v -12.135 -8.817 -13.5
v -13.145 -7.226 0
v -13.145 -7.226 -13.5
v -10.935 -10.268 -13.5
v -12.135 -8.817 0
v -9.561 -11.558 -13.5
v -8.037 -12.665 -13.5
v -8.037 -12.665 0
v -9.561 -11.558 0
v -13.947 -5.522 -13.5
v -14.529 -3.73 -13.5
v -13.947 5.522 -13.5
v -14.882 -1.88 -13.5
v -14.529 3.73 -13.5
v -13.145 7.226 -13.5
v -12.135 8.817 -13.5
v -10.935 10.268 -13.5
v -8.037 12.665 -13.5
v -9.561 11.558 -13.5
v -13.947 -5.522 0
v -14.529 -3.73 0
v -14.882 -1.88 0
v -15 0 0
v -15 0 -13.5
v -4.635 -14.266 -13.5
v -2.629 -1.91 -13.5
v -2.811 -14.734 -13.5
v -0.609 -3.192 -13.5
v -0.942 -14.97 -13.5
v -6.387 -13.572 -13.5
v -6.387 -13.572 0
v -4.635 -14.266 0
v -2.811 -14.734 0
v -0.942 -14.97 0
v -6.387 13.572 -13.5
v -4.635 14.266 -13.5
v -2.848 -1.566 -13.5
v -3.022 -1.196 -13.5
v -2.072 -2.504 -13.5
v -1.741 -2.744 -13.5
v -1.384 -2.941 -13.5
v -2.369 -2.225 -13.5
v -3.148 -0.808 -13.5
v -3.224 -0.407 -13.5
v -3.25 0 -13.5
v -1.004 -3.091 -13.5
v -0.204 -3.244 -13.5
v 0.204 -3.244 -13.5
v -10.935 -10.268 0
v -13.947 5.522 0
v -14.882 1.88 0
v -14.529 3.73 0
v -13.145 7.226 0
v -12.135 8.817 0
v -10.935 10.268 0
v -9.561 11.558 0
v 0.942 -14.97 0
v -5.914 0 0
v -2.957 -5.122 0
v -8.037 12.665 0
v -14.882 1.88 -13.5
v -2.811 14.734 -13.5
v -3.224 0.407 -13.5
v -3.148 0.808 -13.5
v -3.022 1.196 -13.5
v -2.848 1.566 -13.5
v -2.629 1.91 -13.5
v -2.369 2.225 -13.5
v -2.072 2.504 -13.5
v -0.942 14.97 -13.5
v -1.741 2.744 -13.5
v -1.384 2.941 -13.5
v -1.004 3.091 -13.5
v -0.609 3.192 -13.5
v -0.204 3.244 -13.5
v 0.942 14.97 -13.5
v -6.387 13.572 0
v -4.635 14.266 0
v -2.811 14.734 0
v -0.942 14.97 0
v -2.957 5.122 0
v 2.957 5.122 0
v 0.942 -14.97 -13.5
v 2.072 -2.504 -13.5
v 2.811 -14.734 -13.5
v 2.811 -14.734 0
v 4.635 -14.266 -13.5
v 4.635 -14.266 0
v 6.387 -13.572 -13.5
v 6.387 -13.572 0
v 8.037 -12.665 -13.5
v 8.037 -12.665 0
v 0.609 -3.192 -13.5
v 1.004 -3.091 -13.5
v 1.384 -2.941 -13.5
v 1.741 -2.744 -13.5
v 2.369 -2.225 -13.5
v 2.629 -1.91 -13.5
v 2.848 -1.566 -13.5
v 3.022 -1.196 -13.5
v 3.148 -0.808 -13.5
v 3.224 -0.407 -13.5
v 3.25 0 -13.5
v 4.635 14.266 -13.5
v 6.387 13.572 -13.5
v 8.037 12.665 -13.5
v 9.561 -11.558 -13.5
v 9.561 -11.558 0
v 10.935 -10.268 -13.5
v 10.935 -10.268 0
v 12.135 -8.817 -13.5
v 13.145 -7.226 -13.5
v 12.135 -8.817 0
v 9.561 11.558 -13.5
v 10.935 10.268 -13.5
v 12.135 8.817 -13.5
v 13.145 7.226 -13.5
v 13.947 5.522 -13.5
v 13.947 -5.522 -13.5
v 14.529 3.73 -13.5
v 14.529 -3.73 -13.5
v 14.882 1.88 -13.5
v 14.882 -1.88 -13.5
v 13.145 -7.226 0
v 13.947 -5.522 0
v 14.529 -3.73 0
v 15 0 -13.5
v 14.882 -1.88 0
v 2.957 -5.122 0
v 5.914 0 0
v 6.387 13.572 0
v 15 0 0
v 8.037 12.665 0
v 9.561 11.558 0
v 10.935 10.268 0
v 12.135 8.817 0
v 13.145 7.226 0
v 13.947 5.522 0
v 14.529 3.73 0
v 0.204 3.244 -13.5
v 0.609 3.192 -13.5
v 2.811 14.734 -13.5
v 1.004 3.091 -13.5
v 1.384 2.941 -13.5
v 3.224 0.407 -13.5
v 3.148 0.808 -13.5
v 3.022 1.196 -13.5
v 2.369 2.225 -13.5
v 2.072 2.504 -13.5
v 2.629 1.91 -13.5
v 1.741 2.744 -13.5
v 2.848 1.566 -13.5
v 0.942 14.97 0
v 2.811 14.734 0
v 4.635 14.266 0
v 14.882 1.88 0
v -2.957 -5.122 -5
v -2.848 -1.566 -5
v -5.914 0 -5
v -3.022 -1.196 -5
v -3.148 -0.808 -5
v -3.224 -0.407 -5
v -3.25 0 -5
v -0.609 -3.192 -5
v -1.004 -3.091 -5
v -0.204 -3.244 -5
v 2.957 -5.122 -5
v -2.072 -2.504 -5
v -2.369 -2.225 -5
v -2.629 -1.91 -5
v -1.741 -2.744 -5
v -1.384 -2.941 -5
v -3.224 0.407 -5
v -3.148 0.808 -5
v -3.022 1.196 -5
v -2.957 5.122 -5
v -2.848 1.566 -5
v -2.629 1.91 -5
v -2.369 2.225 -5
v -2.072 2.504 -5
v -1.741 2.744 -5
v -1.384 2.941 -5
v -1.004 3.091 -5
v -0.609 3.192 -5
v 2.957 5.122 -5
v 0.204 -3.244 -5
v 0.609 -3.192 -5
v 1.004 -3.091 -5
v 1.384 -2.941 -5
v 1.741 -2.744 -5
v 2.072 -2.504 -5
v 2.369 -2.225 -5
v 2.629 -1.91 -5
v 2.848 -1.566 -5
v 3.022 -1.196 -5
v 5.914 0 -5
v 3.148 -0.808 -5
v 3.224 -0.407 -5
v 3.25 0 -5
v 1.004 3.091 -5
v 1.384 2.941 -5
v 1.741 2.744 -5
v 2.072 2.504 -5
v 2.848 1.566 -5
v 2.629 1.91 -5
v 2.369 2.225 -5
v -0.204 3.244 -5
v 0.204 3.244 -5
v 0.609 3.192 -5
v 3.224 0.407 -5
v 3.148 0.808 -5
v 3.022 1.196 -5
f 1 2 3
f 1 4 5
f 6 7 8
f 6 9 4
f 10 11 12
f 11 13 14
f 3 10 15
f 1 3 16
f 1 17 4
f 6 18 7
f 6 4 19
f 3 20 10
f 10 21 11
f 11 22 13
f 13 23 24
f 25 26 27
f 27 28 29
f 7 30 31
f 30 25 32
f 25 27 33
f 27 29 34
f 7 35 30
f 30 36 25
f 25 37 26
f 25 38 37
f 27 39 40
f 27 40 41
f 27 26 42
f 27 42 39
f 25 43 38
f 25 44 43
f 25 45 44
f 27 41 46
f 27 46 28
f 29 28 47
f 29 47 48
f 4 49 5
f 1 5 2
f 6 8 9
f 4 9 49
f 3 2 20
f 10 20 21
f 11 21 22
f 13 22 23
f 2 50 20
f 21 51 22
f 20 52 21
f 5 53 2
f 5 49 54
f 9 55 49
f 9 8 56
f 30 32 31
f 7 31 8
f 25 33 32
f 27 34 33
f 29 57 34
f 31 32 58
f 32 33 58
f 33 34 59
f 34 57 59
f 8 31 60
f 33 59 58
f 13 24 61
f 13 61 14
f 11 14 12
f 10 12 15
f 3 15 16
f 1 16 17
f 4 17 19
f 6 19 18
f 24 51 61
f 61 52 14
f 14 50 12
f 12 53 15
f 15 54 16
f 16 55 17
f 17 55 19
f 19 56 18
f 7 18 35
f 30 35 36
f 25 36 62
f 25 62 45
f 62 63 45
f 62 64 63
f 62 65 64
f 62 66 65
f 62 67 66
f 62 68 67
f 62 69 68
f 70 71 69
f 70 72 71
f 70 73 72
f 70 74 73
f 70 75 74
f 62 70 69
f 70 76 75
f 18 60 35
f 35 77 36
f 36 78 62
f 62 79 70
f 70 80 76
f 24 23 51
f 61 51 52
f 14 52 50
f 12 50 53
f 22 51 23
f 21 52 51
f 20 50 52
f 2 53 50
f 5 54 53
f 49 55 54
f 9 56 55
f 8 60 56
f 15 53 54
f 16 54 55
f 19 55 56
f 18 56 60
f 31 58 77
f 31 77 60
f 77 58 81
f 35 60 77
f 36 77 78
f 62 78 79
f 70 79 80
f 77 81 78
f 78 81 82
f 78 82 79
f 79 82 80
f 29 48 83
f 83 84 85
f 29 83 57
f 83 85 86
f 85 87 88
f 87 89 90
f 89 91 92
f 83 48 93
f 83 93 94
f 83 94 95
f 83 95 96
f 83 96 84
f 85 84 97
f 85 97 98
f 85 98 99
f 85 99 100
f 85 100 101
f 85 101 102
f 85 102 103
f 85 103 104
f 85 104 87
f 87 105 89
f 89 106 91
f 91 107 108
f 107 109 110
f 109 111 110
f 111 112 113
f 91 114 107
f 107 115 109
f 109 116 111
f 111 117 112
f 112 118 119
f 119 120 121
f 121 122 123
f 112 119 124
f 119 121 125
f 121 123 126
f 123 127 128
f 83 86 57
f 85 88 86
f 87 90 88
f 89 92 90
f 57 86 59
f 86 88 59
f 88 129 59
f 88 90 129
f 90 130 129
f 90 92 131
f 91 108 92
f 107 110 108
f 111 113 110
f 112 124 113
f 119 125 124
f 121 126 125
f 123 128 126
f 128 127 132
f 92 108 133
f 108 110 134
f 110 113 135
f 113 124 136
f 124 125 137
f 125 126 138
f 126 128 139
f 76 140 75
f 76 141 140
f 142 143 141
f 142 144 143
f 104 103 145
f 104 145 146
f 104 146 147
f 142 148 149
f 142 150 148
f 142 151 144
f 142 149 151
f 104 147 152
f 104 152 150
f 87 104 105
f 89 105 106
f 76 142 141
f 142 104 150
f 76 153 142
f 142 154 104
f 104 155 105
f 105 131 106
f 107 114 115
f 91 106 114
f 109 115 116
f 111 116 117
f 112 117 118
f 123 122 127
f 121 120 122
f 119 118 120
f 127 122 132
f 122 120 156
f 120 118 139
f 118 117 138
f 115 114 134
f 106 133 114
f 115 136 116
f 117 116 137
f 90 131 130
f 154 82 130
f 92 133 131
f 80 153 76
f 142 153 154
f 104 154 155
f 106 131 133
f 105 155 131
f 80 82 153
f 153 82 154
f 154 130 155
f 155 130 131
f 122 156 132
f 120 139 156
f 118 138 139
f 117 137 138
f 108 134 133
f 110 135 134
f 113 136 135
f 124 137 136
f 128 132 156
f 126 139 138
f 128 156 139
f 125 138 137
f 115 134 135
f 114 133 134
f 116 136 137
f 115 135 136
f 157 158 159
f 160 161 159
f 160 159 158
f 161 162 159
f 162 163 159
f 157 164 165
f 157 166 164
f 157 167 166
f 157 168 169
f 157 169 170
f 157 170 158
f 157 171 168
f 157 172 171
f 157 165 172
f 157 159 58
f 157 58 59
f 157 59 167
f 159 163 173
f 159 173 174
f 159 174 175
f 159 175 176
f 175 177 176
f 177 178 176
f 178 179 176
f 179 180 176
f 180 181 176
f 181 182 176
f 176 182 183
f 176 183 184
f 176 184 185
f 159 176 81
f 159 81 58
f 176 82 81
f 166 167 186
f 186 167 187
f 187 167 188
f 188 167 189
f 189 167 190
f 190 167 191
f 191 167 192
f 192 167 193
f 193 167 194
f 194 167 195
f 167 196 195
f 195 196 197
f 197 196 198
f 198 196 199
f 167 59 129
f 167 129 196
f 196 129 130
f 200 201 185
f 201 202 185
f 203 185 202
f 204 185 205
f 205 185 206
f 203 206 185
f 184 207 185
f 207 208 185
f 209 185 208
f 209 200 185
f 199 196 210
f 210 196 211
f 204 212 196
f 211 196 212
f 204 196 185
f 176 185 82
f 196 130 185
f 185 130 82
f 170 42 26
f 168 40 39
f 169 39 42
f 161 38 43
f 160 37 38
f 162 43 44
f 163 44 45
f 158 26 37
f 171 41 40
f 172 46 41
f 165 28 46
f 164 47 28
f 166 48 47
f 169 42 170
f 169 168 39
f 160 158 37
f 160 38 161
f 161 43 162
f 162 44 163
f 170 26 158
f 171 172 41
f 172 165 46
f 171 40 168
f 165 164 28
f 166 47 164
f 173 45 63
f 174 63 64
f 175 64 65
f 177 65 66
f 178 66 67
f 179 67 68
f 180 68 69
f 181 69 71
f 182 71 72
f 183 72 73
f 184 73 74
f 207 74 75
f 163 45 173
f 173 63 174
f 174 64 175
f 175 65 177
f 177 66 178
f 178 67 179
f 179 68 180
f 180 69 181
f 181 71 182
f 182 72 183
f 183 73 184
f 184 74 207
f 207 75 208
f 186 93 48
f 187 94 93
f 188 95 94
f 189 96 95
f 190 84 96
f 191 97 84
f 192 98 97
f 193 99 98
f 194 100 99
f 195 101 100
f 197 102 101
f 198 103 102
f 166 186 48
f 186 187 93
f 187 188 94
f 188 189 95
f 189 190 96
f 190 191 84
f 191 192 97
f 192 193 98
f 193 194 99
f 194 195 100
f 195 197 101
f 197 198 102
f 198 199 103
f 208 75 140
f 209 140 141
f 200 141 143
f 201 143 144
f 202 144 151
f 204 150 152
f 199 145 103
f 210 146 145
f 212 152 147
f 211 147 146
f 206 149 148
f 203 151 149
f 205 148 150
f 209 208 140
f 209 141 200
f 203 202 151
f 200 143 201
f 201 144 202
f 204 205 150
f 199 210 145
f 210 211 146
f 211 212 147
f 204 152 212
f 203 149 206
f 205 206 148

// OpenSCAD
$fn = 50;

difference() {
	union() {
		translate(v = [0, 0, -13.5]) {
			cylinder(h = 13.5, r = 15.0);
		}
	}
	union() {
		translate(v = [0, 0, 0]) {
			rotate(a = [0, 0, 0]) {
				difference() {
					union() {
						translate(v = [0, 0, -5]) {
							linear_extrude(height = 5) {
								polygon(points = [[5.914249999999999, 0.0], [2.957125, 5.1218907443321156], [-2.9571249999999982, 5.1218907443321156], [-5.914249999999999, 7.242867331857232e-16], [-2.9571250000000022, -5.121890744332115], [2.9571249999999956, -5.121890744332118]]);
							}
						}
					}
					union();
				}
			}
		}
		#translate(v = [0, 0, -100.0]) {
			cylinder(h = 200, r = 3.25);
		}
	}
}
